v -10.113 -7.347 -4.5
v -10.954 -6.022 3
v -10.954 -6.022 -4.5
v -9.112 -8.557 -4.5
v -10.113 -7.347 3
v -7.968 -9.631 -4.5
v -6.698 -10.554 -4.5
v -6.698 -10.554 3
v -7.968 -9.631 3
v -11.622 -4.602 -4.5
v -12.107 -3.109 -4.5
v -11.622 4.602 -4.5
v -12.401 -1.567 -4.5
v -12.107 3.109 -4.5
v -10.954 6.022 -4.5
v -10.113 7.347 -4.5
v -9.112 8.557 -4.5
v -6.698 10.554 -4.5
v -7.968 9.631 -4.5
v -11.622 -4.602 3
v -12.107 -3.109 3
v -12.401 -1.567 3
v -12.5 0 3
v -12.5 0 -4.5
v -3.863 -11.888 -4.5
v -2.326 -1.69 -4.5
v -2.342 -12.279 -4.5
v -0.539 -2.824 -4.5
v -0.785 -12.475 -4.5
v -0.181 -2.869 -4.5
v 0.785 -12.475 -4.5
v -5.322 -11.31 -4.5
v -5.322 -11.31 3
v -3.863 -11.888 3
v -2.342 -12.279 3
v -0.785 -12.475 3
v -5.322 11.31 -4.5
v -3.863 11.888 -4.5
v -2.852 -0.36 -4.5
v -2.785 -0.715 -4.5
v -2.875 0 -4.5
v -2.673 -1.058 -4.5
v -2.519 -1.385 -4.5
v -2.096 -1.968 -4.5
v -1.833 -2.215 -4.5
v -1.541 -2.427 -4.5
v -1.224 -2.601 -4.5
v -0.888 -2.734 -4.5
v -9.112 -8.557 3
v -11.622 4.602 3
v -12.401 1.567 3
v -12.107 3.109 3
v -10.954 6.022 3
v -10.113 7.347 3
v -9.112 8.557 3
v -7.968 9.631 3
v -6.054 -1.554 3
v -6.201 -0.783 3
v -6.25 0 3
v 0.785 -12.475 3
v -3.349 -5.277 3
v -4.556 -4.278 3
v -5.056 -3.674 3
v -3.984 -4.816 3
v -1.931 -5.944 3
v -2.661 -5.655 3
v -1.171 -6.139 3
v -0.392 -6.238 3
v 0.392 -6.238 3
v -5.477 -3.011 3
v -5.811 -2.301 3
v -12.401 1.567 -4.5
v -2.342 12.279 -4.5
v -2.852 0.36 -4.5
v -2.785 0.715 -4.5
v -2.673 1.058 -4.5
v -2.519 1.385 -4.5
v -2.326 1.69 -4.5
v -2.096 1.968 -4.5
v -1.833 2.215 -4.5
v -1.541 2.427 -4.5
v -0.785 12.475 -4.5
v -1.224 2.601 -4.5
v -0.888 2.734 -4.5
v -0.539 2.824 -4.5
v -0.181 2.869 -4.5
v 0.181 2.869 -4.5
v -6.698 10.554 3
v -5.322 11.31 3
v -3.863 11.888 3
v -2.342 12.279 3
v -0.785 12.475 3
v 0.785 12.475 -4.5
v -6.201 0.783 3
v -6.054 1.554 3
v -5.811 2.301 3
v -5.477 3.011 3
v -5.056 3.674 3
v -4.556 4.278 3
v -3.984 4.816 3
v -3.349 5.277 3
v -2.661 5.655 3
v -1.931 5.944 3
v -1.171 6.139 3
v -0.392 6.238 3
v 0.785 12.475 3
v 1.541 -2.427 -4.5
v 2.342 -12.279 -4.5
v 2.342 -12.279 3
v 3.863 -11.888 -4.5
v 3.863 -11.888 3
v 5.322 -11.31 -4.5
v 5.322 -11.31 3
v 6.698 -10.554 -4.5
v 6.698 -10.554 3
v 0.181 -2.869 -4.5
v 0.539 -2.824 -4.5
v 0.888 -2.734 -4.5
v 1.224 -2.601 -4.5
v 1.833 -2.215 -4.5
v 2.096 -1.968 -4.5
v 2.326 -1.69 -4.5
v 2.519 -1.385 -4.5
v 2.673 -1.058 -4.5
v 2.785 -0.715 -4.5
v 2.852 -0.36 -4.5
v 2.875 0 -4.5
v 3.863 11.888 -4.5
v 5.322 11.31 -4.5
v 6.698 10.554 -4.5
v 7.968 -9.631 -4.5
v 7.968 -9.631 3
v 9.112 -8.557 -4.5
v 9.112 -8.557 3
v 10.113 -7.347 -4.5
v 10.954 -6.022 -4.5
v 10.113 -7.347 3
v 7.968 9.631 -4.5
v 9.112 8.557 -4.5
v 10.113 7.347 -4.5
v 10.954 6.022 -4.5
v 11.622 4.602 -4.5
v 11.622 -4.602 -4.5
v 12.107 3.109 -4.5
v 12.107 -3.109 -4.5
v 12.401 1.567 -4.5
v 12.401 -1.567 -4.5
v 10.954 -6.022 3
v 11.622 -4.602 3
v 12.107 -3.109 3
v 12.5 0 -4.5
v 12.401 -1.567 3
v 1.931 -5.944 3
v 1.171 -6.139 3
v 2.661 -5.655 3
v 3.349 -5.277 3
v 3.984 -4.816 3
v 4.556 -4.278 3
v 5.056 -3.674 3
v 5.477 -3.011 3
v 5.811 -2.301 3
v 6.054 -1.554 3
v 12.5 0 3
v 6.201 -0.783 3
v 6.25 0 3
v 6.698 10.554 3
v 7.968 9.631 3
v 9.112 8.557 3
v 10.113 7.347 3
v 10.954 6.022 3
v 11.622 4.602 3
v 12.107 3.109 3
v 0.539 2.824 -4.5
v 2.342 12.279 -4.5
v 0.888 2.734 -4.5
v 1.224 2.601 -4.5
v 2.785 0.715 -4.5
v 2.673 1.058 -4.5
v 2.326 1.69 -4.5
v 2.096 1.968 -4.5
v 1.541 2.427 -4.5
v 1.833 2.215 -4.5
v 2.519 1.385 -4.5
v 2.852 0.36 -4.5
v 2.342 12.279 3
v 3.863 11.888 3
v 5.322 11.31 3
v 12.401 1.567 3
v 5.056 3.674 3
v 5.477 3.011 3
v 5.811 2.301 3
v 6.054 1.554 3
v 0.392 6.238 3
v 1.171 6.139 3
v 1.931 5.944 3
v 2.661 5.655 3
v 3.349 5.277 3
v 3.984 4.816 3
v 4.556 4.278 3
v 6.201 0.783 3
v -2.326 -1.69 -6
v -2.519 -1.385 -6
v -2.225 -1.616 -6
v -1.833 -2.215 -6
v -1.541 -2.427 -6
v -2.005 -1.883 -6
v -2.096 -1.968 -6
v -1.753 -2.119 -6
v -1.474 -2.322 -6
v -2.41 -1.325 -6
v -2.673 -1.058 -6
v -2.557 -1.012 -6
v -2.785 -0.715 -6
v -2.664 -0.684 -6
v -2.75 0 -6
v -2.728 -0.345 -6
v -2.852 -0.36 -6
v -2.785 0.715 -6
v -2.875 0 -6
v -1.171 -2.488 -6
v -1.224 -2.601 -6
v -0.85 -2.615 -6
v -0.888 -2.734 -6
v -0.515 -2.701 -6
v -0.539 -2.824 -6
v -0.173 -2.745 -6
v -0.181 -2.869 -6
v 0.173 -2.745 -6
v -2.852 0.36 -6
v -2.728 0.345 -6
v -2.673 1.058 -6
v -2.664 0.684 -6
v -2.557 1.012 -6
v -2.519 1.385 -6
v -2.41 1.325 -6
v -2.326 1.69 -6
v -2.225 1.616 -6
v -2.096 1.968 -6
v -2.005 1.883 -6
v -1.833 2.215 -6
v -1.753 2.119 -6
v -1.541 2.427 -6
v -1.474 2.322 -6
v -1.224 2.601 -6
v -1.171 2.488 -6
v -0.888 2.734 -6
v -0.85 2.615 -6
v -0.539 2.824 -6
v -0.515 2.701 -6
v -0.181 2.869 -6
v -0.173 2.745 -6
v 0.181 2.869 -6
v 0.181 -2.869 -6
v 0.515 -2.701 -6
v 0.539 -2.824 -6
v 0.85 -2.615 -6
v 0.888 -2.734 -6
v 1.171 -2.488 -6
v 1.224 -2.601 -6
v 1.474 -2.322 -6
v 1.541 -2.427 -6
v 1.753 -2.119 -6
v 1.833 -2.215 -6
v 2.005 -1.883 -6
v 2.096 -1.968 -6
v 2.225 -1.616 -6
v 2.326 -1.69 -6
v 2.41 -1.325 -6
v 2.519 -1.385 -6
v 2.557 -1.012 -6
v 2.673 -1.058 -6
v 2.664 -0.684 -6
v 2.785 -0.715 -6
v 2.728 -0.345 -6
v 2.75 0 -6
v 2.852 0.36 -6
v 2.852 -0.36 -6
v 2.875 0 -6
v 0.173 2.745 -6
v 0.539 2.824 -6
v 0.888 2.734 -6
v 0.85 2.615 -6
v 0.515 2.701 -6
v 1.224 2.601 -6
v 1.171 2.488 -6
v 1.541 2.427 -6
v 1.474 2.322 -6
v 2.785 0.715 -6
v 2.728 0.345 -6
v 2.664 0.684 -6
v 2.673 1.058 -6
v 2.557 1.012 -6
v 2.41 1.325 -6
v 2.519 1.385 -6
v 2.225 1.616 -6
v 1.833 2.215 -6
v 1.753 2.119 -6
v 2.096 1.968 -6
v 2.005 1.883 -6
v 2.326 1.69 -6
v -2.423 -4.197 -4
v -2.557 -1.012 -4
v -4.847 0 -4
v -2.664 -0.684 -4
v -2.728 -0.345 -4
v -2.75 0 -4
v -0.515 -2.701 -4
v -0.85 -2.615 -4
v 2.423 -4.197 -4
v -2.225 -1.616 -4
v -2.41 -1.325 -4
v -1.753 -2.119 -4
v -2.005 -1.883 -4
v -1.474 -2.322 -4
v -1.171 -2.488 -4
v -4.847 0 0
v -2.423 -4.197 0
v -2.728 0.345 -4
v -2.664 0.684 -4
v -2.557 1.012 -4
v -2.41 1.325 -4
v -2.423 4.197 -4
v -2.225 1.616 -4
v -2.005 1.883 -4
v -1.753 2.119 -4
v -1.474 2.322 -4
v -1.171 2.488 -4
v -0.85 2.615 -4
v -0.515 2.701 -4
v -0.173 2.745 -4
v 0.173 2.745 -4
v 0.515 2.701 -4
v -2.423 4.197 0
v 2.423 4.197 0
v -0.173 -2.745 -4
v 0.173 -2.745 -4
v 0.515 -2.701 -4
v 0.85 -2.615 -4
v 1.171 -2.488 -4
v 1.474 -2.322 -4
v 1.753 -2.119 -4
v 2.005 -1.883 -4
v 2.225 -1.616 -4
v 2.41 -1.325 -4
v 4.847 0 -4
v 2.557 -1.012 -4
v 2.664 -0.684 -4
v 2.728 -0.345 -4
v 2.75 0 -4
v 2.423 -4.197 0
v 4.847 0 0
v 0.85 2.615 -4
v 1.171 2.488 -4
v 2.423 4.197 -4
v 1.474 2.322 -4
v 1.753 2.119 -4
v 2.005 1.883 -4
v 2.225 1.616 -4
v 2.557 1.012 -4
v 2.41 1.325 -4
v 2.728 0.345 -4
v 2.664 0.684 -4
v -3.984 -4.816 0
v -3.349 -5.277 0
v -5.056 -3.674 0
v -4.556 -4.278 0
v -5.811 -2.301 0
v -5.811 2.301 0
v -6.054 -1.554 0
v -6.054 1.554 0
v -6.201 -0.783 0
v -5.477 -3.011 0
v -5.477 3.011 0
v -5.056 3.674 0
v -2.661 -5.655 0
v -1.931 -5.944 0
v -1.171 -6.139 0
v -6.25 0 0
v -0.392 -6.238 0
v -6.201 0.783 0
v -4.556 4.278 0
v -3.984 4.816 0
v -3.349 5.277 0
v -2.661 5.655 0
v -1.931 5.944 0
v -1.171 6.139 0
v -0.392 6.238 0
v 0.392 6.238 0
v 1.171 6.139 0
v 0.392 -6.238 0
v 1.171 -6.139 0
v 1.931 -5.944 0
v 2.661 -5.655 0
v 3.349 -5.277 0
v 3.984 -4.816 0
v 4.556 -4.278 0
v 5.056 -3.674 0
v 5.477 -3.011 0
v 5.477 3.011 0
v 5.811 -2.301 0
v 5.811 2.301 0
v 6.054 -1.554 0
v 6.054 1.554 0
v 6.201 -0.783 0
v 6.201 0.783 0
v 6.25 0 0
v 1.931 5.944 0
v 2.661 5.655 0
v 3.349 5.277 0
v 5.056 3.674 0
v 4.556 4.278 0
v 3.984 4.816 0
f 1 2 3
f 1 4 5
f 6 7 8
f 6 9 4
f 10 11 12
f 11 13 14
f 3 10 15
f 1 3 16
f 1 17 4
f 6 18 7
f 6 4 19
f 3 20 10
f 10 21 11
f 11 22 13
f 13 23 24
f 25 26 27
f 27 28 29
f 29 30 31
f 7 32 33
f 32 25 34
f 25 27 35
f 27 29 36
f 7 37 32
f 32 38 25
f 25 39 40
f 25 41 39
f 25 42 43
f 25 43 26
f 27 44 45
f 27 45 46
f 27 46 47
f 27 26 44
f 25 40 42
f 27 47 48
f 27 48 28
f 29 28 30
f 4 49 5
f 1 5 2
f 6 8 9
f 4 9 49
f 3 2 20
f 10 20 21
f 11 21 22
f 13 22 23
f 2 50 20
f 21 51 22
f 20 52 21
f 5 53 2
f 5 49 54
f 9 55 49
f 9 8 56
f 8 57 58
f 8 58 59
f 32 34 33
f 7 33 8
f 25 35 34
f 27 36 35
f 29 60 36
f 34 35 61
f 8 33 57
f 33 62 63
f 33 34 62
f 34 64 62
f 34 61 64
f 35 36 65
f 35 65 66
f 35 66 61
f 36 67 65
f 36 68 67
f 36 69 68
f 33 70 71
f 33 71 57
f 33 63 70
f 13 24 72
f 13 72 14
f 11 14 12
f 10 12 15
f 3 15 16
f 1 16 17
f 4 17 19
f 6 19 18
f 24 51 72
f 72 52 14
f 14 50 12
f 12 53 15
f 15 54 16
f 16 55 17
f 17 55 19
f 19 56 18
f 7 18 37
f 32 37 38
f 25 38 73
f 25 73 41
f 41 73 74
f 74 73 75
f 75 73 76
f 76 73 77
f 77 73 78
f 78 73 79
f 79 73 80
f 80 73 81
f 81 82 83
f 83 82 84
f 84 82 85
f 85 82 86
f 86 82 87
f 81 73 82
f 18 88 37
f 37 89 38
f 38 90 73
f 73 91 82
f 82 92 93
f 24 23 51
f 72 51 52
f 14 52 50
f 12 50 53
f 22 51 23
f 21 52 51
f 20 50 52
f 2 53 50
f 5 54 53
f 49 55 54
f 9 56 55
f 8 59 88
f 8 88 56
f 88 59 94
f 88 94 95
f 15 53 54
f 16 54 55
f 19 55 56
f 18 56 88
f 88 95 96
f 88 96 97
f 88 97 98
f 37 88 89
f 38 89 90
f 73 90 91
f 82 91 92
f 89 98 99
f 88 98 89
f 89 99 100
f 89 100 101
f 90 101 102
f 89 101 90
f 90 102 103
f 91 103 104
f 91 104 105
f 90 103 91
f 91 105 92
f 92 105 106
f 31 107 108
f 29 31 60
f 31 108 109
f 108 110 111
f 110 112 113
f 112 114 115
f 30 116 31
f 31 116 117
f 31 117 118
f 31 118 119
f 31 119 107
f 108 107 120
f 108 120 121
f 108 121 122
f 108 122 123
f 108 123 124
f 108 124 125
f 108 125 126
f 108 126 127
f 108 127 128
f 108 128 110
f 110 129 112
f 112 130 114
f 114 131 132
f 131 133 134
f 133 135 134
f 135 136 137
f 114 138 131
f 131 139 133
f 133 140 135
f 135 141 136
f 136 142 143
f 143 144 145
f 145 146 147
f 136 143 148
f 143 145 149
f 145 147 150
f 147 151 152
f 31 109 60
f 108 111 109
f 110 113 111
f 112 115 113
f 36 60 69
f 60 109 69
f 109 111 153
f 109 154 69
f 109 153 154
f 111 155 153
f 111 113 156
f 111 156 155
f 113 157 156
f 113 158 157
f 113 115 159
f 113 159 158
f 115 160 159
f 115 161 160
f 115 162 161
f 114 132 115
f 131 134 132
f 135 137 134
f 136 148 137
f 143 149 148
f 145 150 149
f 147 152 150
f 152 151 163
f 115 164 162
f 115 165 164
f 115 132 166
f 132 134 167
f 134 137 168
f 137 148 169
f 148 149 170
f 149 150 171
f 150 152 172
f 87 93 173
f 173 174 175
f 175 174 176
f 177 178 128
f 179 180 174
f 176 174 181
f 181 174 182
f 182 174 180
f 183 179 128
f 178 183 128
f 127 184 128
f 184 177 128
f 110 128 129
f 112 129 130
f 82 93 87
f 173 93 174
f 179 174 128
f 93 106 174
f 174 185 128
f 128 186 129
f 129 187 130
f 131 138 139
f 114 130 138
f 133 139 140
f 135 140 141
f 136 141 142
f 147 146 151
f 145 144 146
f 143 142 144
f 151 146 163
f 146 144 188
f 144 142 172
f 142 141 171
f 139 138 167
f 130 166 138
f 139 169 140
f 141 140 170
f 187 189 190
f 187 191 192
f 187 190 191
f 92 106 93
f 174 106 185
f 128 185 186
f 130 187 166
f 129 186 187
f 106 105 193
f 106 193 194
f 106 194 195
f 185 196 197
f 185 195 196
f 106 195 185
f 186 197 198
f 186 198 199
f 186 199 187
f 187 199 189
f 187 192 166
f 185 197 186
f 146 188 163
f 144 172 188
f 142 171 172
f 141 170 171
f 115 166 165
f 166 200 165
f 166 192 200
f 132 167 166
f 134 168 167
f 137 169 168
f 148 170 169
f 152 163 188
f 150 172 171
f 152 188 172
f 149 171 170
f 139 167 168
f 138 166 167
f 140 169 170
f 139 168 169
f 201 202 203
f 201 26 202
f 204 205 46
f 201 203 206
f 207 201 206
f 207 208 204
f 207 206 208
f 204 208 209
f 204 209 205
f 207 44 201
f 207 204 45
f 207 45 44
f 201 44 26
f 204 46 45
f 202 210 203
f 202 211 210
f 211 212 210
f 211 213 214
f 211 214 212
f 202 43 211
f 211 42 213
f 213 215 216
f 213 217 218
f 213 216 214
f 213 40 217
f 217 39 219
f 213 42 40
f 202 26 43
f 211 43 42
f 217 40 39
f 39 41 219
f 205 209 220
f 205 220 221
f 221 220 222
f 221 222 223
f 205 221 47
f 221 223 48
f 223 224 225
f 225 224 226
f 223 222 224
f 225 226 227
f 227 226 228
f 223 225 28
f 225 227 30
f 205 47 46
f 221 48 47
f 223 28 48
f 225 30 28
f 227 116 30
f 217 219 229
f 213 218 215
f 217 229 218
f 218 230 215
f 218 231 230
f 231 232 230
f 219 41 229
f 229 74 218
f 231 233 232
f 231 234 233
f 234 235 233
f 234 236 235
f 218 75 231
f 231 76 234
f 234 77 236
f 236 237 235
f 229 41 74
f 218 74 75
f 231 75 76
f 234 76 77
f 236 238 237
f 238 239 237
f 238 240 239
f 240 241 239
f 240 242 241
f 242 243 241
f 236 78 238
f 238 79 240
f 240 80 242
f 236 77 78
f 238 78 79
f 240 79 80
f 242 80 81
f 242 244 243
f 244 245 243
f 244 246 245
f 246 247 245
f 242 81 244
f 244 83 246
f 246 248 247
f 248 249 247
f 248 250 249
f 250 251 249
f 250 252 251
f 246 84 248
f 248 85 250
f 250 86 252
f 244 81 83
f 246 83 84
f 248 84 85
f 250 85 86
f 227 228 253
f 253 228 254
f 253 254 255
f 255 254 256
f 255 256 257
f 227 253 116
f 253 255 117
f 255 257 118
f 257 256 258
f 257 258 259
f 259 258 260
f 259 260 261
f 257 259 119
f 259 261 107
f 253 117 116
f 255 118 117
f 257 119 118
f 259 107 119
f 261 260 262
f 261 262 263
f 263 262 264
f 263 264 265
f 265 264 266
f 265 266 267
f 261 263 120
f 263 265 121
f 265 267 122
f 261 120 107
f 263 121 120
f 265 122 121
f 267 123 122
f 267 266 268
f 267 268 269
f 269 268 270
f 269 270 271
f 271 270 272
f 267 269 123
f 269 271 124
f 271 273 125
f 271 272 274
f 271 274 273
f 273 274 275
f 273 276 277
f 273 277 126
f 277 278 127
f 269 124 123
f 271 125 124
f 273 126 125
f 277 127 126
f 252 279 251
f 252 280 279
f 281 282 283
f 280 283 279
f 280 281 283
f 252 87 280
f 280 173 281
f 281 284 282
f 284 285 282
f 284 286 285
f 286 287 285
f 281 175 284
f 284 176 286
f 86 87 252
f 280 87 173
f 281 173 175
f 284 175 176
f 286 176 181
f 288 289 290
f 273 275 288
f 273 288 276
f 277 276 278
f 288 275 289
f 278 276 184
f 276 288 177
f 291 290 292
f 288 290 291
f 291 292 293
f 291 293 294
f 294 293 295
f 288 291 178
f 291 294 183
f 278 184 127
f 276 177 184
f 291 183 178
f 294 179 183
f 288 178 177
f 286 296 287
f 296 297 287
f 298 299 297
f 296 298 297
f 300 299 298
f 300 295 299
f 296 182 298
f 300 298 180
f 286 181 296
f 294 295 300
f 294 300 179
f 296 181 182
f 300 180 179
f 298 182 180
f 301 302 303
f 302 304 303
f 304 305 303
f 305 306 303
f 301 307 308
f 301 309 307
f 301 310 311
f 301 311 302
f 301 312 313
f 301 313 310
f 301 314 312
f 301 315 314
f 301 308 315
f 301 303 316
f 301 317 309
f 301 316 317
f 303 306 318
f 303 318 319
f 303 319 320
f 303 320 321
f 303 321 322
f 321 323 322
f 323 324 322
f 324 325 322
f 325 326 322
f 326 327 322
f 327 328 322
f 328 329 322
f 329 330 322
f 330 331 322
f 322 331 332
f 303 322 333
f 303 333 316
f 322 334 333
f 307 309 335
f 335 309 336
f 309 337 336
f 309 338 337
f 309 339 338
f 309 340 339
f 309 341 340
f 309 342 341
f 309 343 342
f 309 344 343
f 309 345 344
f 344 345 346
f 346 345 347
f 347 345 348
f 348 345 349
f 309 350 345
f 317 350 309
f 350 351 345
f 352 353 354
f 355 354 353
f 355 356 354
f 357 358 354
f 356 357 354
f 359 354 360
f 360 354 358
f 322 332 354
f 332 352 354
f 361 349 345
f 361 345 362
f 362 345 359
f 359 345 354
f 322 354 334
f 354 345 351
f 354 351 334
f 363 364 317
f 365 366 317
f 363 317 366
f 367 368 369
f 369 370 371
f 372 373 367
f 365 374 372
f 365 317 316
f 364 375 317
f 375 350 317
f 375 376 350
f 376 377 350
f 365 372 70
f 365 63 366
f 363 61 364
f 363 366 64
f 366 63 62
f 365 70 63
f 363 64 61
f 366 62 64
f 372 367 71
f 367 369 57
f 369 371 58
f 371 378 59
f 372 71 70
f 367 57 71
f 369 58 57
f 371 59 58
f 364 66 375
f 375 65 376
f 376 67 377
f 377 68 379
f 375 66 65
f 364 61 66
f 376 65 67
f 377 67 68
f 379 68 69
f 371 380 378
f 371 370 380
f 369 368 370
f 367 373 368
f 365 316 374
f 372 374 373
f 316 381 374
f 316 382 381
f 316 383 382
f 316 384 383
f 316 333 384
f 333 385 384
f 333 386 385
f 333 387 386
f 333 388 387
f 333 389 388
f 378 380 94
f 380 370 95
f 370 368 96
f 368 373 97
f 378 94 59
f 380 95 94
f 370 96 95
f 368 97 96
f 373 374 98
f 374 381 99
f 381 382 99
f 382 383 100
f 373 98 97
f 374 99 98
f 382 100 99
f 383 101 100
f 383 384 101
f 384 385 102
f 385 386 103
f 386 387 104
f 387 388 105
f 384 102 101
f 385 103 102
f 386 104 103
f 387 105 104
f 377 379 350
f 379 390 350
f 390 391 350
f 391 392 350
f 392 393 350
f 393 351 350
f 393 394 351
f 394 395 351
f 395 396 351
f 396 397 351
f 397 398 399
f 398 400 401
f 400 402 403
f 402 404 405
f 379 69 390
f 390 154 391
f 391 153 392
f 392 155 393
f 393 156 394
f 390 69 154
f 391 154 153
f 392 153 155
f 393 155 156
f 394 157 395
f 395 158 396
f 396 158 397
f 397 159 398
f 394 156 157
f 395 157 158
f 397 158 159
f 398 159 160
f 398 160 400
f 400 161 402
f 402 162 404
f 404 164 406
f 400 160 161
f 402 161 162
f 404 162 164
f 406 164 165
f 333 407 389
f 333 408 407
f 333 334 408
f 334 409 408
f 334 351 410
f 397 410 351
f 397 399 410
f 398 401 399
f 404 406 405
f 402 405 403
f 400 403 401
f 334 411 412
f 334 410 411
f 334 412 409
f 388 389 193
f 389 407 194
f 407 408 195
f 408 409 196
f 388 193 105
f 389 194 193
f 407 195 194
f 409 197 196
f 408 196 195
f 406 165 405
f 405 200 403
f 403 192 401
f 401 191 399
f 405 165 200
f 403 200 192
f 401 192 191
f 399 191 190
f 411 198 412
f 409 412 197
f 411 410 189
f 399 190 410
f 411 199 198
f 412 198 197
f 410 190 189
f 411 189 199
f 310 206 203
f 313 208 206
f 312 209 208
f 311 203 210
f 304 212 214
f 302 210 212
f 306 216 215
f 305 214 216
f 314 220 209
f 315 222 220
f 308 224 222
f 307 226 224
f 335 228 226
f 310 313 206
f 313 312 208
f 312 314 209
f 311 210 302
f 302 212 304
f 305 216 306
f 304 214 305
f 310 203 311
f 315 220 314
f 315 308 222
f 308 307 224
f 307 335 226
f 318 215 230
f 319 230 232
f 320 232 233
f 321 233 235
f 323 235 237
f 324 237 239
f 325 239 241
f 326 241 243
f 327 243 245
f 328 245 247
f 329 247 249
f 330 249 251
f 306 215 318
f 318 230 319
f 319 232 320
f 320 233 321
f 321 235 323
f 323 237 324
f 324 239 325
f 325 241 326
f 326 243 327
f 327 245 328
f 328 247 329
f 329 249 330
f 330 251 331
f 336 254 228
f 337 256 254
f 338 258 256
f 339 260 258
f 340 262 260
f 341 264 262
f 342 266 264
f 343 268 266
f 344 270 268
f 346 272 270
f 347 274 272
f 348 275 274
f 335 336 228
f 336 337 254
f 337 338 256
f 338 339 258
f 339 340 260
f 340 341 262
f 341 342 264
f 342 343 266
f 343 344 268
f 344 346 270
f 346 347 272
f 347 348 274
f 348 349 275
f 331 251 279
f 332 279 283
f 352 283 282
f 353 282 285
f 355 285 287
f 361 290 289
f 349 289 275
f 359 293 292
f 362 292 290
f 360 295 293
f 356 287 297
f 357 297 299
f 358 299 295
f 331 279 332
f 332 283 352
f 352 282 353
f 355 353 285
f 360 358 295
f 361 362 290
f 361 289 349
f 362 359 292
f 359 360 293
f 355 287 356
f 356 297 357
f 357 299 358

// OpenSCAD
$fn = 50;


difference() {
	union() {
		translate(v = [0, 0, -4.5000000000]) {
			cylinder(h = 7.5000000000, r = 12.5000000000);
		}
		#translate(v = [0, 0, -6.0000000000]) {
			cylinder(h = 6, r = 2.8750000000);
		}
	}
	union() {
		translate(v = [0, 0, 0]) {
			rotate(a = [0, 0, 0]) {
				difference() {
					union() {
						translate(v = [0, 0, -4]) {
							linear_extrude(height = 4) {
								polygon(points = [[4.8468000000, 0.0000000000], [2.4234000000, 4.1974519271], [-2.4234000000, 4.1974519271], [-4.8468000000, 0.0000000000], [-2.4234000000, -4.1974519271], [2.4234000000, -4.1974519271]]);
							}
						}
					}
					union();
				}
			}
		}
		#cylinder(h = 3, r = 6.2500000000);
		#translate(v = [0, 0, -100.0000000000]) {
			cylinder(h = 200, r = 2.7500000000);
		}
	}
}
